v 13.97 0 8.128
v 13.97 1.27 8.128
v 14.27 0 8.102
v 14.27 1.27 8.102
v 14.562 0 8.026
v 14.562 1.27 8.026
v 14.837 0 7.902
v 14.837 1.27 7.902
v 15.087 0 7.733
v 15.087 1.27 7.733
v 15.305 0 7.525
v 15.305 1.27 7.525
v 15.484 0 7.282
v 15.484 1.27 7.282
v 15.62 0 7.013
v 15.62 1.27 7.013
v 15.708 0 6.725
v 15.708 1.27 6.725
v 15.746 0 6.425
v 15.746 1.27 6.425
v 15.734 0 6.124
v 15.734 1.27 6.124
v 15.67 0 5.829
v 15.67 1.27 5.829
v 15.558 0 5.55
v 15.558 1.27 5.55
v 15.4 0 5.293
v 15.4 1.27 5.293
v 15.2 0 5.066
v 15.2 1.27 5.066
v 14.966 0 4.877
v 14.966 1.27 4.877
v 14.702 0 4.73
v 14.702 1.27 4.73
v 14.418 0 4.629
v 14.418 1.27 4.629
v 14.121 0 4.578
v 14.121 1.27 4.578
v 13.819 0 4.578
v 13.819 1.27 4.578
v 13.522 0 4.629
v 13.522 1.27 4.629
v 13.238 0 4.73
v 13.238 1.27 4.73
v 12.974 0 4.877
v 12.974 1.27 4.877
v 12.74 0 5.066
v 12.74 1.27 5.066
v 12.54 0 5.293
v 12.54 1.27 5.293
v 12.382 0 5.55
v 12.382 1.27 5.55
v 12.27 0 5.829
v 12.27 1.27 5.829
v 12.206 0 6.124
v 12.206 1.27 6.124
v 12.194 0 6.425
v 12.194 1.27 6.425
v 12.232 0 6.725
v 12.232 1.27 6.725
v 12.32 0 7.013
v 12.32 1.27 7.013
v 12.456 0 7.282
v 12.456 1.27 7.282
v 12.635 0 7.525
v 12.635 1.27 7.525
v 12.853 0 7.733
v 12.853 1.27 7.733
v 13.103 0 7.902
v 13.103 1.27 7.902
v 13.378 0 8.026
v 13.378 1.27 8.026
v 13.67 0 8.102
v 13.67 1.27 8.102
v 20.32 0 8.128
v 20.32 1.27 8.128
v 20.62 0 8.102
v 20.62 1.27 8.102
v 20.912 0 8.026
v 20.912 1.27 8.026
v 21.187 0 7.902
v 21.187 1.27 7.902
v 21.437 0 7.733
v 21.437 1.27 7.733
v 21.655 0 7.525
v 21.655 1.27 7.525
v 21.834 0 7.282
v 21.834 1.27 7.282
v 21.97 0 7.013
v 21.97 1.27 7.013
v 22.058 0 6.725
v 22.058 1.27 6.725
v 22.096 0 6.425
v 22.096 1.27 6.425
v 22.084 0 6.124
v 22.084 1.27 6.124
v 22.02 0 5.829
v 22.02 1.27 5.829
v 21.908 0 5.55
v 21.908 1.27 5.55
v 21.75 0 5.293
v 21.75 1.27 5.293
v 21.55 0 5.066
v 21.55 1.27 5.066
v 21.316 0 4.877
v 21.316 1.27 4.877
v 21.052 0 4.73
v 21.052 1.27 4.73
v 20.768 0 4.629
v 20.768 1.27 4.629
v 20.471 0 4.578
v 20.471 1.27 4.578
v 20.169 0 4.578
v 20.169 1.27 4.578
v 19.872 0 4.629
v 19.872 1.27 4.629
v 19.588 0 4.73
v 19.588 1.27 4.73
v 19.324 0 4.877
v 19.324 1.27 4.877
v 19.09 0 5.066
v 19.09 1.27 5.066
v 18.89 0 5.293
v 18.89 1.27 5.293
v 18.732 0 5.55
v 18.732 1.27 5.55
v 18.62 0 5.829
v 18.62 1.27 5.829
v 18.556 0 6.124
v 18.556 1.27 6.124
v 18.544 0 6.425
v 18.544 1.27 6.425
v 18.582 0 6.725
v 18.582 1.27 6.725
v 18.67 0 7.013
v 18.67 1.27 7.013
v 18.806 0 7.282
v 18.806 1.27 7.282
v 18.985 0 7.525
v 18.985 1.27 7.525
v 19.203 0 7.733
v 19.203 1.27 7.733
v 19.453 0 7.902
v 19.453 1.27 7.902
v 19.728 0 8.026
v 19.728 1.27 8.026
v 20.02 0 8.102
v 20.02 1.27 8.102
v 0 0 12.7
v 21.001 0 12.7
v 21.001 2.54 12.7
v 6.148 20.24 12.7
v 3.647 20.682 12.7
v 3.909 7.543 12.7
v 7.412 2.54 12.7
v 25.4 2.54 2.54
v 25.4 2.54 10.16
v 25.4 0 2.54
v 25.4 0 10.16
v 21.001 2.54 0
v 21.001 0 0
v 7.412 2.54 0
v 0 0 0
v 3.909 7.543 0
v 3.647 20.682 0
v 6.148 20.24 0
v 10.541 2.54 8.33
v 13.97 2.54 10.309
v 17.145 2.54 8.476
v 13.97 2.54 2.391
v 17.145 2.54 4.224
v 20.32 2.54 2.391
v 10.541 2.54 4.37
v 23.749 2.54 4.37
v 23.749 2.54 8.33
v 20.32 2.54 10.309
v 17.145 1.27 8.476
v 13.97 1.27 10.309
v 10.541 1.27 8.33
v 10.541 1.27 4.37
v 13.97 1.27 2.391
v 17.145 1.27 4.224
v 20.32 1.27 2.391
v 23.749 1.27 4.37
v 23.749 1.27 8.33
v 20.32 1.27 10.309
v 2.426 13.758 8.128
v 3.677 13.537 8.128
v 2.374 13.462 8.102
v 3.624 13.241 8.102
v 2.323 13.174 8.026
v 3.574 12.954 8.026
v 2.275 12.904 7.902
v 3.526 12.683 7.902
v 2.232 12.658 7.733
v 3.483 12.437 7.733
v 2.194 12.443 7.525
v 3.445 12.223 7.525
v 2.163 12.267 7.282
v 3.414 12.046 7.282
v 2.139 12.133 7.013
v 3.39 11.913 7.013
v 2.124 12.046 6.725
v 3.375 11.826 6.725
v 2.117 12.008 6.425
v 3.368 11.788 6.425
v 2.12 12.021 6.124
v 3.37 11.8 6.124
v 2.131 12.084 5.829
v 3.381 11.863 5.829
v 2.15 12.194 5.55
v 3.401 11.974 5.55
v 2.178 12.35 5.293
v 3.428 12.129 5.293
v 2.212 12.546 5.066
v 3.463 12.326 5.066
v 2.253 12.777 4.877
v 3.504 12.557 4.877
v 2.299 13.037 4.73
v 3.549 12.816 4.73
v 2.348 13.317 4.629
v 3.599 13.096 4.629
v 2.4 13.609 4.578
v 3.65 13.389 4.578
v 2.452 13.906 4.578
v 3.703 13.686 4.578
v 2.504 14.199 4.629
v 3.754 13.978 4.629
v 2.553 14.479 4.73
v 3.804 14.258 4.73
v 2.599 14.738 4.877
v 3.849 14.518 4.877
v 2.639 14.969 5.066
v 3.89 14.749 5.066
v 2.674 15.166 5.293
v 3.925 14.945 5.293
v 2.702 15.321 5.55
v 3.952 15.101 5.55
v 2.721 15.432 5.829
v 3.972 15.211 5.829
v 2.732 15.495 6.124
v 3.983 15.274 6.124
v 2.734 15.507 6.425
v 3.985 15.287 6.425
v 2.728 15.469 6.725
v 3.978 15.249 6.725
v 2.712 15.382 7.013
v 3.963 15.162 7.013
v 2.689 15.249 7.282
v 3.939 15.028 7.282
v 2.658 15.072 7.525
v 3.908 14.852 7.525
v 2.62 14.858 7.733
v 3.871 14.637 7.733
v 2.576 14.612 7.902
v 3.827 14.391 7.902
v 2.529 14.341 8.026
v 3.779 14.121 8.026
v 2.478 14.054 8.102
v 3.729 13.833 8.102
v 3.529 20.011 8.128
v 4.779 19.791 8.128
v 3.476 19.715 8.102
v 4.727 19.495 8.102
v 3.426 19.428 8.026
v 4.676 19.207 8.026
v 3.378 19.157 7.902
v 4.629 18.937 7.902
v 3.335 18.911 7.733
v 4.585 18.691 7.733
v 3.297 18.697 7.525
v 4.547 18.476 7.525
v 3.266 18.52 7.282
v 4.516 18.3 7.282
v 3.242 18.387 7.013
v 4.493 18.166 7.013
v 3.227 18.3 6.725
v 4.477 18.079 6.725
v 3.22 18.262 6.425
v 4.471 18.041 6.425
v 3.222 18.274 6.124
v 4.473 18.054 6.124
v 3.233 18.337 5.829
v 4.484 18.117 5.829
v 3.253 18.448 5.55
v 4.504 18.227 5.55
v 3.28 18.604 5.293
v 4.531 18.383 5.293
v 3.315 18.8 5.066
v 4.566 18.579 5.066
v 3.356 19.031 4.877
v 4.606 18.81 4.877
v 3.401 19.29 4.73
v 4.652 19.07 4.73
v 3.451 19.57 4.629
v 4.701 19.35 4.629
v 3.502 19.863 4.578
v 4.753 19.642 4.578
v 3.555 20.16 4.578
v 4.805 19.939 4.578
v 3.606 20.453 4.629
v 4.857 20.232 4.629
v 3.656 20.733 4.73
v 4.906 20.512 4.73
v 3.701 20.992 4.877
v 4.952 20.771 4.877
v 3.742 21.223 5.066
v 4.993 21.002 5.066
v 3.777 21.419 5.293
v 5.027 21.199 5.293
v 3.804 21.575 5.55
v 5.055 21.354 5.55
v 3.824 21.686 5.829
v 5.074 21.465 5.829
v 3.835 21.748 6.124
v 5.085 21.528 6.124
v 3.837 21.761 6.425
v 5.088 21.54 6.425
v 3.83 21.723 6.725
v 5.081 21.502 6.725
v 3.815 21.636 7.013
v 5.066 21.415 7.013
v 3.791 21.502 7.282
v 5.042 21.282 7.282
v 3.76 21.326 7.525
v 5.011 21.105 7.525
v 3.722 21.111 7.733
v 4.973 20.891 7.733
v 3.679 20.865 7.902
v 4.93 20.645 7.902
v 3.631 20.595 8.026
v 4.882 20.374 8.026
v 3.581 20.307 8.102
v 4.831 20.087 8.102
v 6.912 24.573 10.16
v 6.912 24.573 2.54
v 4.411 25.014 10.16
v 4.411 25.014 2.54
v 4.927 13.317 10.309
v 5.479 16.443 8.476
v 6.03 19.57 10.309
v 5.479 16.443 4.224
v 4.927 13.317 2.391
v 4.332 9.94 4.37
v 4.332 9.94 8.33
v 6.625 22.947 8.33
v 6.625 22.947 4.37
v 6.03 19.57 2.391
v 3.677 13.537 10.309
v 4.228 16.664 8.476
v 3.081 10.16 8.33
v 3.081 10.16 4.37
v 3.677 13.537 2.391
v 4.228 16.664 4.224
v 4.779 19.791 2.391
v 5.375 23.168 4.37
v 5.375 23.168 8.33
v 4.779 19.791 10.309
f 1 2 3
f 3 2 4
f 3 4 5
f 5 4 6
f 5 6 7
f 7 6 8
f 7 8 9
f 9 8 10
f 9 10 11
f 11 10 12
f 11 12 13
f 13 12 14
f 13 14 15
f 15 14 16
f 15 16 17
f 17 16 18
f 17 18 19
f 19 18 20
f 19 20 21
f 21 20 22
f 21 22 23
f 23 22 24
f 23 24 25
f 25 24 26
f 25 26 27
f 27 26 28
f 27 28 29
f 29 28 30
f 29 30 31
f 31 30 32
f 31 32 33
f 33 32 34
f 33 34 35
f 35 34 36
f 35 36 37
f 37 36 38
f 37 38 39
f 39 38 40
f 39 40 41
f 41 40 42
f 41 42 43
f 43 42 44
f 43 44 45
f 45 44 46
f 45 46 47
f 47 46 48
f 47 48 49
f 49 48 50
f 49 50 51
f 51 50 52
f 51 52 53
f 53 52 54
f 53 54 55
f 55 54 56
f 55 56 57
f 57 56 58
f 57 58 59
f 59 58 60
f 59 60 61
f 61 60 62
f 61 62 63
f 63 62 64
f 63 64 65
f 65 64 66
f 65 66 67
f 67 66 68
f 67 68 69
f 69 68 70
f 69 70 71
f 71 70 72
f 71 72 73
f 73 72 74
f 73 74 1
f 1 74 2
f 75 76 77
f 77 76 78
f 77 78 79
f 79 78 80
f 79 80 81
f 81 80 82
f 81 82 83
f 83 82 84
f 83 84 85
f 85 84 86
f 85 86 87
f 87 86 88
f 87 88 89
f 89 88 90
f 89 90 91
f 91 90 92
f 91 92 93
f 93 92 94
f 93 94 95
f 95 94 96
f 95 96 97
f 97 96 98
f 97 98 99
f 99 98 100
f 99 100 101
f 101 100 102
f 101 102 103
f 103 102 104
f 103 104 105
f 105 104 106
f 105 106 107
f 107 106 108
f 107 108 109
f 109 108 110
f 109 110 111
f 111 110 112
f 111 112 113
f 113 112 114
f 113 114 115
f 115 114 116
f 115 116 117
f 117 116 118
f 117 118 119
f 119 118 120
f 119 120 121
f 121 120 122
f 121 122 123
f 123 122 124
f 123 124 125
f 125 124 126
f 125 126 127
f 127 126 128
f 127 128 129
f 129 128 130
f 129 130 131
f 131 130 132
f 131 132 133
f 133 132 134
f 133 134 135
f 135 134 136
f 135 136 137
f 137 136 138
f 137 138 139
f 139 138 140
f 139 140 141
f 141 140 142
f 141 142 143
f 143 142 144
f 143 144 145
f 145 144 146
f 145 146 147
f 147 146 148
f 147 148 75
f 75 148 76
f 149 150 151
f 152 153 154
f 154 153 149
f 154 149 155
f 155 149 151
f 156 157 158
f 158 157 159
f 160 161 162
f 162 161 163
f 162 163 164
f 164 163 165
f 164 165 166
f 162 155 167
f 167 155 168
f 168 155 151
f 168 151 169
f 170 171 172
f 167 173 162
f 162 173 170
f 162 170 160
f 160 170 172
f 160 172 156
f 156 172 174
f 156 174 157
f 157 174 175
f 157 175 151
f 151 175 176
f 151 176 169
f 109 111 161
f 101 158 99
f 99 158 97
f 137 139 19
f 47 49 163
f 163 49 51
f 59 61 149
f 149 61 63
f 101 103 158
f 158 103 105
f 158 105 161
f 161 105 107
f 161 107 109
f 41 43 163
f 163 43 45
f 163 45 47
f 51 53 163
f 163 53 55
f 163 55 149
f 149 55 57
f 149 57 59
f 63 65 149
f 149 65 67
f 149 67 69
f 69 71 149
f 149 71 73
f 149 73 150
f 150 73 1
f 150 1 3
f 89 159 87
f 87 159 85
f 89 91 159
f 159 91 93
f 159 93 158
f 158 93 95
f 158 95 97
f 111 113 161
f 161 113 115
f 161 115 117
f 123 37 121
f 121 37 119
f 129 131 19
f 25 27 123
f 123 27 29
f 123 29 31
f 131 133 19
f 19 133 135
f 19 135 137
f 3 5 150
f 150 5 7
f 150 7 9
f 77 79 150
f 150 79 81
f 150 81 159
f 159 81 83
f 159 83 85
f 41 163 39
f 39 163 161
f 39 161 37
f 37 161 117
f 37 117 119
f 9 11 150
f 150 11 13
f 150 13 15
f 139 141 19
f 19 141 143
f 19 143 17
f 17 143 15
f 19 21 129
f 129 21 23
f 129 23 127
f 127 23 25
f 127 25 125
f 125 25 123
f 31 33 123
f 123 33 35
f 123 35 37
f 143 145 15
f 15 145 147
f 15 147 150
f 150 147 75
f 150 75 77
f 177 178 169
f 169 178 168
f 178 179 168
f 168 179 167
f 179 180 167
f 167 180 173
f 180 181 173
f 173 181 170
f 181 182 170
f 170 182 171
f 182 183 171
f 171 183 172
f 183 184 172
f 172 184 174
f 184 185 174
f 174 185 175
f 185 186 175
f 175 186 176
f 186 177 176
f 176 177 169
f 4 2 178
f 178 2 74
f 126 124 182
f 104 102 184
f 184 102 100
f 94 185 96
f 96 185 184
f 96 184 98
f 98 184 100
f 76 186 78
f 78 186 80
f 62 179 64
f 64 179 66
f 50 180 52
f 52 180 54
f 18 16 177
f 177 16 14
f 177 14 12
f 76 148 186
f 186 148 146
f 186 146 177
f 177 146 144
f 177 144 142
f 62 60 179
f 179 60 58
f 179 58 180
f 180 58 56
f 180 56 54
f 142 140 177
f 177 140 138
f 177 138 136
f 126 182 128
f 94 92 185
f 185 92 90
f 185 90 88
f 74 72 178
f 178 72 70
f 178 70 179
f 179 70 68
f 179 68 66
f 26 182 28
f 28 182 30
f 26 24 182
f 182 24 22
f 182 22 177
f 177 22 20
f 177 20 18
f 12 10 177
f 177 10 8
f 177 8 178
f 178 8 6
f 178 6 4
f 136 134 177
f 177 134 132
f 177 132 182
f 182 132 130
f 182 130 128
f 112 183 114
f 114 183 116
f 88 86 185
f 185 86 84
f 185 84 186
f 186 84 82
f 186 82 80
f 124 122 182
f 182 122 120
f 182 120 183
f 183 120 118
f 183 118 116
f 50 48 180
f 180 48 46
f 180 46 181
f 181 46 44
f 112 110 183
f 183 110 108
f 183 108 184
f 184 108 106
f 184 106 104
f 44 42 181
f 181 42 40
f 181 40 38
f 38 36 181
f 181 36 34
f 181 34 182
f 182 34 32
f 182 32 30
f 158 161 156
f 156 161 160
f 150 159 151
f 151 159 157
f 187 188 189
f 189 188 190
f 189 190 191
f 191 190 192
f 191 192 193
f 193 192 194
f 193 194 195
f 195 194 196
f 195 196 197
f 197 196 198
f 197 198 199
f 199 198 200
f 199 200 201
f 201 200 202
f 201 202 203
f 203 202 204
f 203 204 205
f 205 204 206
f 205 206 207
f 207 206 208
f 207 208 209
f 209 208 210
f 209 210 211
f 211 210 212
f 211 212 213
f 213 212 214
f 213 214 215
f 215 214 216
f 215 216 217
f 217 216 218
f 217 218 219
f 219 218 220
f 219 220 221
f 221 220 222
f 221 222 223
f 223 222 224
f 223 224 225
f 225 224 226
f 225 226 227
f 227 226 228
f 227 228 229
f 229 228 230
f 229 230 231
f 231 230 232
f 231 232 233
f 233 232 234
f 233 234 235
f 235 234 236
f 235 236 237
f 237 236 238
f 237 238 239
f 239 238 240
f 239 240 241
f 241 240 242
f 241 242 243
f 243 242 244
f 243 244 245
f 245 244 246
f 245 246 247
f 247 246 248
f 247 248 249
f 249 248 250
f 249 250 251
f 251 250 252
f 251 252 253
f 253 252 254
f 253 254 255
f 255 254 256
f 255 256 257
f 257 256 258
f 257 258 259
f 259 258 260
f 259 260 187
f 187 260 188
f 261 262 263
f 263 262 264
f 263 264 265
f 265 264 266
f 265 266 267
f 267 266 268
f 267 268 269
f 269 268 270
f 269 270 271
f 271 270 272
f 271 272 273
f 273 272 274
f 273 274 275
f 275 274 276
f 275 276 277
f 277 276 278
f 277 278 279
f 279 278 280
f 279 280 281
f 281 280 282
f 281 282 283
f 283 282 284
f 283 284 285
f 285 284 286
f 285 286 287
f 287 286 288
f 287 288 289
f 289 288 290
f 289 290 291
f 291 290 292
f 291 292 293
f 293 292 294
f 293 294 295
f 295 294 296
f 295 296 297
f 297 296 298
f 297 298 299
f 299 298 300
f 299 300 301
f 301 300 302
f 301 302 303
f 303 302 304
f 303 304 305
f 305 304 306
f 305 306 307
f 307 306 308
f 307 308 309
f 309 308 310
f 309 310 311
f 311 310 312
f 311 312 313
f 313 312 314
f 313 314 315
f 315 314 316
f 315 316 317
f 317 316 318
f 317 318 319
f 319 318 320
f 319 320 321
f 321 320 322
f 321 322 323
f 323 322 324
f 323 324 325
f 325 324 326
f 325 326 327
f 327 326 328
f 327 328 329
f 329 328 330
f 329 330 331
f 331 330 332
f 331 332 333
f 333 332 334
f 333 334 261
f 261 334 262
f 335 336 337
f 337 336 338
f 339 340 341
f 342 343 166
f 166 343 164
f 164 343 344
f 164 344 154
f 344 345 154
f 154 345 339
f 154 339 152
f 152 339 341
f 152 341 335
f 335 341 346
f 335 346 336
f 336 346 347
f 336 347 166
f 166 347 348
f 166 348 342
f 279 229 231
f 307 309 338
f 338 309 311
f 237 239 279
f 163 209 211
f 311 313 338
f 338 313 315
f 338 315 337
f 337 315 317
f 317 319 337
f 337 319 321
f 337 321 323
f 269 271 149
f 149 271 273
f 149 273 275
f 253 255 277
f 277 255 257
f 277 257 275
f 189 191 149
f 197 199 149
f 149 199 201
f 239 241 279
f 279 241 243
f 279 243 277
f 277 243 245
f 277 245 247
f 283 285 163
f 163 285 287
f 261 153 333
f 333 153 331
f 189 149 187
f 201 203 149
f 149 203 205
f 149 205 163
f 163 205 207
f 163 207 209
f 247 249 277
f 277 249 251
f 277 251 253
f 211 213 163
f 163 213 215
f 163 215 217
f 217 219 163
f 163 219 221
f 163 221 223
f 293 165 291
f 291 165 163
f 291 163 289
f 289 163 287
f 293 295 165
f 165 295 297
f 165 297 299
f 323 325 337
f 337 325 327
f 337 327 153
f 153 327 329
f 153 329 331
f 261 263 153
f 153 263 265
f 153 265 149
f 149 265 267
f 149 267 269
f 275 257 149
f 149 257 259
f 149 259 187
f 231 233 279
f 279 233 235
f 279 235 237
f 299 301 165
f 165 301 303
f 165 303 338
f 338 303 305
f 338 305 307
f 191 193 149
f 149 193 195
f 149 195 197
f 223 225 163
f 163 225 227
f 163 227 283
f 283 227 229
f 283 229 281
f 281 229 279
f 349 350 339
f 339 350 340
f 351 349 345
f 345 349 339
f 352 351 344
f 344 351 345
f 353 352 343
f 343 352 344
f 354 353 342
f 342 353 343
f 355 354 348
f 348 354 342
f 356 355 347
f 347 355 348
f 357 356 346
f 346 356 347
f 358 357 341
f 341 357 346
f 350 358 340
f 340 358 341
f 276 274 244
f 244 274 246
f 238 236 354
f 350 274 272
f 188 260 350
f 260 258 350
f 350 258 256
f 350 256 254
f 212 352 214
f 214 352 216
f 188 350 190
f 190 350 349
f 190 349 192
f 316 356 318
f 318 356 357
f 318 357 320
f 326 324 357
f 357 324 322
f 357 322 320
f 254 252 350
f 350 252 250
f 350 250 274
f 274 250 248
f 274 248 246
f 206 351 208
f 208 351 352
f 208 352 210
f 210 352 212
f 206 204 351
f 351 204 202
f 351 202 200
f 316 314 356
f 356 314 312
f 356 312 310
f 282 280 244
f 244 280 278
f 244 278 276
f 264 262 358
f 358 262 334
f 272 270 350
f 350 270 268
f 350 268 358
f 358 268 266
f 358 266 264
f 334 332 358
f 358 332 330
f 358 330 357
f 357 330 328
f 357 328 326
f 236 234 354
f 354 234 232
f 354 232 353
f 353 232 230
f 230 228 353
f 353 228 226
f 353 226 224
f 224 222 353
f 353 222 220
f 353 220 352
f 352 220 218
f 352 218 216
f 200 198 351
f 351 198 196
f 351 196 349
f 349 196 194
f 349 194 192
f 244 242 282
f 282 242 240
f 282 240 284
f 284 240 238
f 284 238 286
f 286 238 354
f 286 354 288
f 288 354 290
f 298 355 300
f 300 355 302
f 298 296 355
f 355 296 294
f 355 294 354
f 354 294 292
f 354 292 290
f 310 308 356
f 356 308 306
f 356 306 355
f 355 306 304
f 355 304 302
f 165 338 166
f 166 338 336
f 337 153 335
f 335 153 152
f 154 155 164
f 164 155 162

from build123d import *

# Parameters (mm, degrees)
SKETCH1_W           = 25.4
SKETCH1_H           = 12.7
BOSS_EXTRUDE1_DEPTH = 2.54
CUT_EXTRUDE1_DEPTH  = 29.511429287
CHAMFER1_SIZE2      = 3.027054125
CHAMFER1_SIZE       = 2.54
SKETCH4_R           = 1.778
CUT_EXTRUDE2_DEPTH  = 1.27
CHAMFER3_SIZE       = 2.54
CHAMFER3_SIZE2      = 4.399409051
CHAMFER2_SIZE       = 5.08
CHAMFER2_SIZE2      = 4.385147389


with BuildPart() as part:
    # Sketch1 → Boss-Extrude1 (new body)
    with BuildSketch(Plane(origin=(0, 0, 0), x_dir=(1, 0, 0), z_dir=(0, 1, 0))):
        with Locations((12.7, -6.35)):
            Rectangle(SKETCH1_W, SKETCH1_H)
    extrude(amount=BOSS_EXTRUDE1_DEPTH)

    # Sketch2 → Cut-Extrude1 (cut, through all)
    with BuildSketch(Plane(origin=(0, 2.54, 0), x_dir=(1, 0, 0), z_dir=(0, 1, 0))):
        with BuildLine():
            ThreePointArc((22.098, -6.35), (20.32, -4.572), (18.542, -6.35))
            Line((18.542, -6.35), (22.098, -6.35))
        make_face()
        with BuildLine():
            Line((22.098, -6.35), (18.542, -6.35))
            ThreePointArc((18.542, -6.35), (20.32, -8.128), (22.098, -6.35))
        make_face()
        with BuildLine():
            ThreePointArc((15.748, -6.35), (13.97, -4.572), (12.192, -6.35))
            Line((12.192, -6.35), (15.748, -6.35))
        make_face()
        with BuildLine():
            Line((15.748, -6.35), (12.192, -6.35))
            ThreePointArc((12.192, -6.35), (13.97, -8.128), (15.748, -6.35))
        make_face()
    extrude(amount=-CUT_EXTRUDE1_DEPTH, mode=Mode.SUBTRACT)

    # Chamfer1
    chamfer1_edges = [part.edges().sort_by_distance(p)[0] for p in [
        (0, 2.54, 6.35),
    ]]
    chamfer1_side = [part.faces().sort_by_distance(p)[0] for p in [
        (0, 2.4892, 6.35),
    ]]
    chamfer(chamfer1_edges, length=CHAMFER1_SIZE - 0.0001, length2=CHAMFER1_SIZE2 - 0.0001, reference=chamfer1_side[0])  # a hair under: the kernel refuses the full size

    # Sketch4 → Cut-Extrude2 (cut)
    # profile 1 of 3: a face of its own
    with BuildSketch(Plane(origin=(0, 2.54, 0), x_dir=(1, 0, 0), z_dir=(0, 1, 0))):
        Polygon((17.145, -4.223618959), (13.97, -2.390531854), (10.541, -4.370265927), (10.541, -8.329734073), (13.97, -10.309468146), (17.145, -8.476381041), (16.891, -8.329734073), (16.891, -4.370265927), align=None)
        with Locations(Location((13.97, -6.35, 0), (0, 0, 270))):
            Circle(SKETCH4_R, mode=Mode.SUBTRACT)
    # profile 2 of 3: a face of its own
    with BuildSketch(Plane(origin=(0, 2.54, 0), x_dir=(1, 0, 0), z_dir=(0, 1, 0))):
        Polygon((20.32, -2.390531854), (17.145, -4.223618959), (17.399, -4.370265927), (17.399, -8.329734073), (17.145, -8.476381041), (20.32, -10.309468146), (23.749, -8.329734073), (23.749, -4.370265927), align=None)
        with Locations(Location((20.32, -6.35, 0), (0, 0, 270))):
            Circle(SKETCH4_R, mode=Mode.SUBTRACT)
    # profile 3 of 3: a face of its own
    with BuildSketch(Plane(origin=(0, 2.54, 0), x_dir=(1, 0, 0), z_dir=(0, 1, 0))):
        Polygon((17.399, -4.370265927), (17.145, -4.223618959), (16.891, -4.370265927), (16.891, -8.329734073), (17.145, -8.476381041), (17.399, -8.329734073), align=None)
    extrude(amount=-CUT_EXTRUDE2_DEPTH, mode=Mode.SUBTRACT)

    # Chamfer3
    chamfer3_edges = [part.edges().sort_by_distance(p)[0] for p in [
        (25.4, 1.27, 0),
        (25.4, 1.27, 12.7),
    ]]
    chamfer3_side = [part.faces().sort_by_distance(p)[0] for p in [
        (25.4, 1.27, 6.35),
    ]]
    chamfer(chamfer3_edges, length=CHAMFER3_SIZE, length2=CHAMFER3_SIZE2, reference=chamfer3_side[0])

    # Mirror1: part across plane


with BuildPart() as part_1:
    add(part.part)
    add(part.part.mirror(Plane(origin=(3.027054125, 2.54, 0), x_dir=(0, 0, 1), z_dir=(-0.6427876096865399, 0.7660444431189777, 0))))

    # Chamfer2
    chamfer2_edges = [part_1.edges().sort_by_distance(p)[0] for p in [
        (3.026954125, 2.54, 6.35),
    ]]
    chamfer2_side = [part_1.faces().sort_by_distance(p)[0] for p in [
        (4.587581401, 11.390189966, 0.257263255),
    ]]
    chamfer(chamfer2_edges, length=CHAMFER2_SIZE, length2=CHAMFER2_SIZE2, reference=chamfer2_side[0])


solid = part_1.part
